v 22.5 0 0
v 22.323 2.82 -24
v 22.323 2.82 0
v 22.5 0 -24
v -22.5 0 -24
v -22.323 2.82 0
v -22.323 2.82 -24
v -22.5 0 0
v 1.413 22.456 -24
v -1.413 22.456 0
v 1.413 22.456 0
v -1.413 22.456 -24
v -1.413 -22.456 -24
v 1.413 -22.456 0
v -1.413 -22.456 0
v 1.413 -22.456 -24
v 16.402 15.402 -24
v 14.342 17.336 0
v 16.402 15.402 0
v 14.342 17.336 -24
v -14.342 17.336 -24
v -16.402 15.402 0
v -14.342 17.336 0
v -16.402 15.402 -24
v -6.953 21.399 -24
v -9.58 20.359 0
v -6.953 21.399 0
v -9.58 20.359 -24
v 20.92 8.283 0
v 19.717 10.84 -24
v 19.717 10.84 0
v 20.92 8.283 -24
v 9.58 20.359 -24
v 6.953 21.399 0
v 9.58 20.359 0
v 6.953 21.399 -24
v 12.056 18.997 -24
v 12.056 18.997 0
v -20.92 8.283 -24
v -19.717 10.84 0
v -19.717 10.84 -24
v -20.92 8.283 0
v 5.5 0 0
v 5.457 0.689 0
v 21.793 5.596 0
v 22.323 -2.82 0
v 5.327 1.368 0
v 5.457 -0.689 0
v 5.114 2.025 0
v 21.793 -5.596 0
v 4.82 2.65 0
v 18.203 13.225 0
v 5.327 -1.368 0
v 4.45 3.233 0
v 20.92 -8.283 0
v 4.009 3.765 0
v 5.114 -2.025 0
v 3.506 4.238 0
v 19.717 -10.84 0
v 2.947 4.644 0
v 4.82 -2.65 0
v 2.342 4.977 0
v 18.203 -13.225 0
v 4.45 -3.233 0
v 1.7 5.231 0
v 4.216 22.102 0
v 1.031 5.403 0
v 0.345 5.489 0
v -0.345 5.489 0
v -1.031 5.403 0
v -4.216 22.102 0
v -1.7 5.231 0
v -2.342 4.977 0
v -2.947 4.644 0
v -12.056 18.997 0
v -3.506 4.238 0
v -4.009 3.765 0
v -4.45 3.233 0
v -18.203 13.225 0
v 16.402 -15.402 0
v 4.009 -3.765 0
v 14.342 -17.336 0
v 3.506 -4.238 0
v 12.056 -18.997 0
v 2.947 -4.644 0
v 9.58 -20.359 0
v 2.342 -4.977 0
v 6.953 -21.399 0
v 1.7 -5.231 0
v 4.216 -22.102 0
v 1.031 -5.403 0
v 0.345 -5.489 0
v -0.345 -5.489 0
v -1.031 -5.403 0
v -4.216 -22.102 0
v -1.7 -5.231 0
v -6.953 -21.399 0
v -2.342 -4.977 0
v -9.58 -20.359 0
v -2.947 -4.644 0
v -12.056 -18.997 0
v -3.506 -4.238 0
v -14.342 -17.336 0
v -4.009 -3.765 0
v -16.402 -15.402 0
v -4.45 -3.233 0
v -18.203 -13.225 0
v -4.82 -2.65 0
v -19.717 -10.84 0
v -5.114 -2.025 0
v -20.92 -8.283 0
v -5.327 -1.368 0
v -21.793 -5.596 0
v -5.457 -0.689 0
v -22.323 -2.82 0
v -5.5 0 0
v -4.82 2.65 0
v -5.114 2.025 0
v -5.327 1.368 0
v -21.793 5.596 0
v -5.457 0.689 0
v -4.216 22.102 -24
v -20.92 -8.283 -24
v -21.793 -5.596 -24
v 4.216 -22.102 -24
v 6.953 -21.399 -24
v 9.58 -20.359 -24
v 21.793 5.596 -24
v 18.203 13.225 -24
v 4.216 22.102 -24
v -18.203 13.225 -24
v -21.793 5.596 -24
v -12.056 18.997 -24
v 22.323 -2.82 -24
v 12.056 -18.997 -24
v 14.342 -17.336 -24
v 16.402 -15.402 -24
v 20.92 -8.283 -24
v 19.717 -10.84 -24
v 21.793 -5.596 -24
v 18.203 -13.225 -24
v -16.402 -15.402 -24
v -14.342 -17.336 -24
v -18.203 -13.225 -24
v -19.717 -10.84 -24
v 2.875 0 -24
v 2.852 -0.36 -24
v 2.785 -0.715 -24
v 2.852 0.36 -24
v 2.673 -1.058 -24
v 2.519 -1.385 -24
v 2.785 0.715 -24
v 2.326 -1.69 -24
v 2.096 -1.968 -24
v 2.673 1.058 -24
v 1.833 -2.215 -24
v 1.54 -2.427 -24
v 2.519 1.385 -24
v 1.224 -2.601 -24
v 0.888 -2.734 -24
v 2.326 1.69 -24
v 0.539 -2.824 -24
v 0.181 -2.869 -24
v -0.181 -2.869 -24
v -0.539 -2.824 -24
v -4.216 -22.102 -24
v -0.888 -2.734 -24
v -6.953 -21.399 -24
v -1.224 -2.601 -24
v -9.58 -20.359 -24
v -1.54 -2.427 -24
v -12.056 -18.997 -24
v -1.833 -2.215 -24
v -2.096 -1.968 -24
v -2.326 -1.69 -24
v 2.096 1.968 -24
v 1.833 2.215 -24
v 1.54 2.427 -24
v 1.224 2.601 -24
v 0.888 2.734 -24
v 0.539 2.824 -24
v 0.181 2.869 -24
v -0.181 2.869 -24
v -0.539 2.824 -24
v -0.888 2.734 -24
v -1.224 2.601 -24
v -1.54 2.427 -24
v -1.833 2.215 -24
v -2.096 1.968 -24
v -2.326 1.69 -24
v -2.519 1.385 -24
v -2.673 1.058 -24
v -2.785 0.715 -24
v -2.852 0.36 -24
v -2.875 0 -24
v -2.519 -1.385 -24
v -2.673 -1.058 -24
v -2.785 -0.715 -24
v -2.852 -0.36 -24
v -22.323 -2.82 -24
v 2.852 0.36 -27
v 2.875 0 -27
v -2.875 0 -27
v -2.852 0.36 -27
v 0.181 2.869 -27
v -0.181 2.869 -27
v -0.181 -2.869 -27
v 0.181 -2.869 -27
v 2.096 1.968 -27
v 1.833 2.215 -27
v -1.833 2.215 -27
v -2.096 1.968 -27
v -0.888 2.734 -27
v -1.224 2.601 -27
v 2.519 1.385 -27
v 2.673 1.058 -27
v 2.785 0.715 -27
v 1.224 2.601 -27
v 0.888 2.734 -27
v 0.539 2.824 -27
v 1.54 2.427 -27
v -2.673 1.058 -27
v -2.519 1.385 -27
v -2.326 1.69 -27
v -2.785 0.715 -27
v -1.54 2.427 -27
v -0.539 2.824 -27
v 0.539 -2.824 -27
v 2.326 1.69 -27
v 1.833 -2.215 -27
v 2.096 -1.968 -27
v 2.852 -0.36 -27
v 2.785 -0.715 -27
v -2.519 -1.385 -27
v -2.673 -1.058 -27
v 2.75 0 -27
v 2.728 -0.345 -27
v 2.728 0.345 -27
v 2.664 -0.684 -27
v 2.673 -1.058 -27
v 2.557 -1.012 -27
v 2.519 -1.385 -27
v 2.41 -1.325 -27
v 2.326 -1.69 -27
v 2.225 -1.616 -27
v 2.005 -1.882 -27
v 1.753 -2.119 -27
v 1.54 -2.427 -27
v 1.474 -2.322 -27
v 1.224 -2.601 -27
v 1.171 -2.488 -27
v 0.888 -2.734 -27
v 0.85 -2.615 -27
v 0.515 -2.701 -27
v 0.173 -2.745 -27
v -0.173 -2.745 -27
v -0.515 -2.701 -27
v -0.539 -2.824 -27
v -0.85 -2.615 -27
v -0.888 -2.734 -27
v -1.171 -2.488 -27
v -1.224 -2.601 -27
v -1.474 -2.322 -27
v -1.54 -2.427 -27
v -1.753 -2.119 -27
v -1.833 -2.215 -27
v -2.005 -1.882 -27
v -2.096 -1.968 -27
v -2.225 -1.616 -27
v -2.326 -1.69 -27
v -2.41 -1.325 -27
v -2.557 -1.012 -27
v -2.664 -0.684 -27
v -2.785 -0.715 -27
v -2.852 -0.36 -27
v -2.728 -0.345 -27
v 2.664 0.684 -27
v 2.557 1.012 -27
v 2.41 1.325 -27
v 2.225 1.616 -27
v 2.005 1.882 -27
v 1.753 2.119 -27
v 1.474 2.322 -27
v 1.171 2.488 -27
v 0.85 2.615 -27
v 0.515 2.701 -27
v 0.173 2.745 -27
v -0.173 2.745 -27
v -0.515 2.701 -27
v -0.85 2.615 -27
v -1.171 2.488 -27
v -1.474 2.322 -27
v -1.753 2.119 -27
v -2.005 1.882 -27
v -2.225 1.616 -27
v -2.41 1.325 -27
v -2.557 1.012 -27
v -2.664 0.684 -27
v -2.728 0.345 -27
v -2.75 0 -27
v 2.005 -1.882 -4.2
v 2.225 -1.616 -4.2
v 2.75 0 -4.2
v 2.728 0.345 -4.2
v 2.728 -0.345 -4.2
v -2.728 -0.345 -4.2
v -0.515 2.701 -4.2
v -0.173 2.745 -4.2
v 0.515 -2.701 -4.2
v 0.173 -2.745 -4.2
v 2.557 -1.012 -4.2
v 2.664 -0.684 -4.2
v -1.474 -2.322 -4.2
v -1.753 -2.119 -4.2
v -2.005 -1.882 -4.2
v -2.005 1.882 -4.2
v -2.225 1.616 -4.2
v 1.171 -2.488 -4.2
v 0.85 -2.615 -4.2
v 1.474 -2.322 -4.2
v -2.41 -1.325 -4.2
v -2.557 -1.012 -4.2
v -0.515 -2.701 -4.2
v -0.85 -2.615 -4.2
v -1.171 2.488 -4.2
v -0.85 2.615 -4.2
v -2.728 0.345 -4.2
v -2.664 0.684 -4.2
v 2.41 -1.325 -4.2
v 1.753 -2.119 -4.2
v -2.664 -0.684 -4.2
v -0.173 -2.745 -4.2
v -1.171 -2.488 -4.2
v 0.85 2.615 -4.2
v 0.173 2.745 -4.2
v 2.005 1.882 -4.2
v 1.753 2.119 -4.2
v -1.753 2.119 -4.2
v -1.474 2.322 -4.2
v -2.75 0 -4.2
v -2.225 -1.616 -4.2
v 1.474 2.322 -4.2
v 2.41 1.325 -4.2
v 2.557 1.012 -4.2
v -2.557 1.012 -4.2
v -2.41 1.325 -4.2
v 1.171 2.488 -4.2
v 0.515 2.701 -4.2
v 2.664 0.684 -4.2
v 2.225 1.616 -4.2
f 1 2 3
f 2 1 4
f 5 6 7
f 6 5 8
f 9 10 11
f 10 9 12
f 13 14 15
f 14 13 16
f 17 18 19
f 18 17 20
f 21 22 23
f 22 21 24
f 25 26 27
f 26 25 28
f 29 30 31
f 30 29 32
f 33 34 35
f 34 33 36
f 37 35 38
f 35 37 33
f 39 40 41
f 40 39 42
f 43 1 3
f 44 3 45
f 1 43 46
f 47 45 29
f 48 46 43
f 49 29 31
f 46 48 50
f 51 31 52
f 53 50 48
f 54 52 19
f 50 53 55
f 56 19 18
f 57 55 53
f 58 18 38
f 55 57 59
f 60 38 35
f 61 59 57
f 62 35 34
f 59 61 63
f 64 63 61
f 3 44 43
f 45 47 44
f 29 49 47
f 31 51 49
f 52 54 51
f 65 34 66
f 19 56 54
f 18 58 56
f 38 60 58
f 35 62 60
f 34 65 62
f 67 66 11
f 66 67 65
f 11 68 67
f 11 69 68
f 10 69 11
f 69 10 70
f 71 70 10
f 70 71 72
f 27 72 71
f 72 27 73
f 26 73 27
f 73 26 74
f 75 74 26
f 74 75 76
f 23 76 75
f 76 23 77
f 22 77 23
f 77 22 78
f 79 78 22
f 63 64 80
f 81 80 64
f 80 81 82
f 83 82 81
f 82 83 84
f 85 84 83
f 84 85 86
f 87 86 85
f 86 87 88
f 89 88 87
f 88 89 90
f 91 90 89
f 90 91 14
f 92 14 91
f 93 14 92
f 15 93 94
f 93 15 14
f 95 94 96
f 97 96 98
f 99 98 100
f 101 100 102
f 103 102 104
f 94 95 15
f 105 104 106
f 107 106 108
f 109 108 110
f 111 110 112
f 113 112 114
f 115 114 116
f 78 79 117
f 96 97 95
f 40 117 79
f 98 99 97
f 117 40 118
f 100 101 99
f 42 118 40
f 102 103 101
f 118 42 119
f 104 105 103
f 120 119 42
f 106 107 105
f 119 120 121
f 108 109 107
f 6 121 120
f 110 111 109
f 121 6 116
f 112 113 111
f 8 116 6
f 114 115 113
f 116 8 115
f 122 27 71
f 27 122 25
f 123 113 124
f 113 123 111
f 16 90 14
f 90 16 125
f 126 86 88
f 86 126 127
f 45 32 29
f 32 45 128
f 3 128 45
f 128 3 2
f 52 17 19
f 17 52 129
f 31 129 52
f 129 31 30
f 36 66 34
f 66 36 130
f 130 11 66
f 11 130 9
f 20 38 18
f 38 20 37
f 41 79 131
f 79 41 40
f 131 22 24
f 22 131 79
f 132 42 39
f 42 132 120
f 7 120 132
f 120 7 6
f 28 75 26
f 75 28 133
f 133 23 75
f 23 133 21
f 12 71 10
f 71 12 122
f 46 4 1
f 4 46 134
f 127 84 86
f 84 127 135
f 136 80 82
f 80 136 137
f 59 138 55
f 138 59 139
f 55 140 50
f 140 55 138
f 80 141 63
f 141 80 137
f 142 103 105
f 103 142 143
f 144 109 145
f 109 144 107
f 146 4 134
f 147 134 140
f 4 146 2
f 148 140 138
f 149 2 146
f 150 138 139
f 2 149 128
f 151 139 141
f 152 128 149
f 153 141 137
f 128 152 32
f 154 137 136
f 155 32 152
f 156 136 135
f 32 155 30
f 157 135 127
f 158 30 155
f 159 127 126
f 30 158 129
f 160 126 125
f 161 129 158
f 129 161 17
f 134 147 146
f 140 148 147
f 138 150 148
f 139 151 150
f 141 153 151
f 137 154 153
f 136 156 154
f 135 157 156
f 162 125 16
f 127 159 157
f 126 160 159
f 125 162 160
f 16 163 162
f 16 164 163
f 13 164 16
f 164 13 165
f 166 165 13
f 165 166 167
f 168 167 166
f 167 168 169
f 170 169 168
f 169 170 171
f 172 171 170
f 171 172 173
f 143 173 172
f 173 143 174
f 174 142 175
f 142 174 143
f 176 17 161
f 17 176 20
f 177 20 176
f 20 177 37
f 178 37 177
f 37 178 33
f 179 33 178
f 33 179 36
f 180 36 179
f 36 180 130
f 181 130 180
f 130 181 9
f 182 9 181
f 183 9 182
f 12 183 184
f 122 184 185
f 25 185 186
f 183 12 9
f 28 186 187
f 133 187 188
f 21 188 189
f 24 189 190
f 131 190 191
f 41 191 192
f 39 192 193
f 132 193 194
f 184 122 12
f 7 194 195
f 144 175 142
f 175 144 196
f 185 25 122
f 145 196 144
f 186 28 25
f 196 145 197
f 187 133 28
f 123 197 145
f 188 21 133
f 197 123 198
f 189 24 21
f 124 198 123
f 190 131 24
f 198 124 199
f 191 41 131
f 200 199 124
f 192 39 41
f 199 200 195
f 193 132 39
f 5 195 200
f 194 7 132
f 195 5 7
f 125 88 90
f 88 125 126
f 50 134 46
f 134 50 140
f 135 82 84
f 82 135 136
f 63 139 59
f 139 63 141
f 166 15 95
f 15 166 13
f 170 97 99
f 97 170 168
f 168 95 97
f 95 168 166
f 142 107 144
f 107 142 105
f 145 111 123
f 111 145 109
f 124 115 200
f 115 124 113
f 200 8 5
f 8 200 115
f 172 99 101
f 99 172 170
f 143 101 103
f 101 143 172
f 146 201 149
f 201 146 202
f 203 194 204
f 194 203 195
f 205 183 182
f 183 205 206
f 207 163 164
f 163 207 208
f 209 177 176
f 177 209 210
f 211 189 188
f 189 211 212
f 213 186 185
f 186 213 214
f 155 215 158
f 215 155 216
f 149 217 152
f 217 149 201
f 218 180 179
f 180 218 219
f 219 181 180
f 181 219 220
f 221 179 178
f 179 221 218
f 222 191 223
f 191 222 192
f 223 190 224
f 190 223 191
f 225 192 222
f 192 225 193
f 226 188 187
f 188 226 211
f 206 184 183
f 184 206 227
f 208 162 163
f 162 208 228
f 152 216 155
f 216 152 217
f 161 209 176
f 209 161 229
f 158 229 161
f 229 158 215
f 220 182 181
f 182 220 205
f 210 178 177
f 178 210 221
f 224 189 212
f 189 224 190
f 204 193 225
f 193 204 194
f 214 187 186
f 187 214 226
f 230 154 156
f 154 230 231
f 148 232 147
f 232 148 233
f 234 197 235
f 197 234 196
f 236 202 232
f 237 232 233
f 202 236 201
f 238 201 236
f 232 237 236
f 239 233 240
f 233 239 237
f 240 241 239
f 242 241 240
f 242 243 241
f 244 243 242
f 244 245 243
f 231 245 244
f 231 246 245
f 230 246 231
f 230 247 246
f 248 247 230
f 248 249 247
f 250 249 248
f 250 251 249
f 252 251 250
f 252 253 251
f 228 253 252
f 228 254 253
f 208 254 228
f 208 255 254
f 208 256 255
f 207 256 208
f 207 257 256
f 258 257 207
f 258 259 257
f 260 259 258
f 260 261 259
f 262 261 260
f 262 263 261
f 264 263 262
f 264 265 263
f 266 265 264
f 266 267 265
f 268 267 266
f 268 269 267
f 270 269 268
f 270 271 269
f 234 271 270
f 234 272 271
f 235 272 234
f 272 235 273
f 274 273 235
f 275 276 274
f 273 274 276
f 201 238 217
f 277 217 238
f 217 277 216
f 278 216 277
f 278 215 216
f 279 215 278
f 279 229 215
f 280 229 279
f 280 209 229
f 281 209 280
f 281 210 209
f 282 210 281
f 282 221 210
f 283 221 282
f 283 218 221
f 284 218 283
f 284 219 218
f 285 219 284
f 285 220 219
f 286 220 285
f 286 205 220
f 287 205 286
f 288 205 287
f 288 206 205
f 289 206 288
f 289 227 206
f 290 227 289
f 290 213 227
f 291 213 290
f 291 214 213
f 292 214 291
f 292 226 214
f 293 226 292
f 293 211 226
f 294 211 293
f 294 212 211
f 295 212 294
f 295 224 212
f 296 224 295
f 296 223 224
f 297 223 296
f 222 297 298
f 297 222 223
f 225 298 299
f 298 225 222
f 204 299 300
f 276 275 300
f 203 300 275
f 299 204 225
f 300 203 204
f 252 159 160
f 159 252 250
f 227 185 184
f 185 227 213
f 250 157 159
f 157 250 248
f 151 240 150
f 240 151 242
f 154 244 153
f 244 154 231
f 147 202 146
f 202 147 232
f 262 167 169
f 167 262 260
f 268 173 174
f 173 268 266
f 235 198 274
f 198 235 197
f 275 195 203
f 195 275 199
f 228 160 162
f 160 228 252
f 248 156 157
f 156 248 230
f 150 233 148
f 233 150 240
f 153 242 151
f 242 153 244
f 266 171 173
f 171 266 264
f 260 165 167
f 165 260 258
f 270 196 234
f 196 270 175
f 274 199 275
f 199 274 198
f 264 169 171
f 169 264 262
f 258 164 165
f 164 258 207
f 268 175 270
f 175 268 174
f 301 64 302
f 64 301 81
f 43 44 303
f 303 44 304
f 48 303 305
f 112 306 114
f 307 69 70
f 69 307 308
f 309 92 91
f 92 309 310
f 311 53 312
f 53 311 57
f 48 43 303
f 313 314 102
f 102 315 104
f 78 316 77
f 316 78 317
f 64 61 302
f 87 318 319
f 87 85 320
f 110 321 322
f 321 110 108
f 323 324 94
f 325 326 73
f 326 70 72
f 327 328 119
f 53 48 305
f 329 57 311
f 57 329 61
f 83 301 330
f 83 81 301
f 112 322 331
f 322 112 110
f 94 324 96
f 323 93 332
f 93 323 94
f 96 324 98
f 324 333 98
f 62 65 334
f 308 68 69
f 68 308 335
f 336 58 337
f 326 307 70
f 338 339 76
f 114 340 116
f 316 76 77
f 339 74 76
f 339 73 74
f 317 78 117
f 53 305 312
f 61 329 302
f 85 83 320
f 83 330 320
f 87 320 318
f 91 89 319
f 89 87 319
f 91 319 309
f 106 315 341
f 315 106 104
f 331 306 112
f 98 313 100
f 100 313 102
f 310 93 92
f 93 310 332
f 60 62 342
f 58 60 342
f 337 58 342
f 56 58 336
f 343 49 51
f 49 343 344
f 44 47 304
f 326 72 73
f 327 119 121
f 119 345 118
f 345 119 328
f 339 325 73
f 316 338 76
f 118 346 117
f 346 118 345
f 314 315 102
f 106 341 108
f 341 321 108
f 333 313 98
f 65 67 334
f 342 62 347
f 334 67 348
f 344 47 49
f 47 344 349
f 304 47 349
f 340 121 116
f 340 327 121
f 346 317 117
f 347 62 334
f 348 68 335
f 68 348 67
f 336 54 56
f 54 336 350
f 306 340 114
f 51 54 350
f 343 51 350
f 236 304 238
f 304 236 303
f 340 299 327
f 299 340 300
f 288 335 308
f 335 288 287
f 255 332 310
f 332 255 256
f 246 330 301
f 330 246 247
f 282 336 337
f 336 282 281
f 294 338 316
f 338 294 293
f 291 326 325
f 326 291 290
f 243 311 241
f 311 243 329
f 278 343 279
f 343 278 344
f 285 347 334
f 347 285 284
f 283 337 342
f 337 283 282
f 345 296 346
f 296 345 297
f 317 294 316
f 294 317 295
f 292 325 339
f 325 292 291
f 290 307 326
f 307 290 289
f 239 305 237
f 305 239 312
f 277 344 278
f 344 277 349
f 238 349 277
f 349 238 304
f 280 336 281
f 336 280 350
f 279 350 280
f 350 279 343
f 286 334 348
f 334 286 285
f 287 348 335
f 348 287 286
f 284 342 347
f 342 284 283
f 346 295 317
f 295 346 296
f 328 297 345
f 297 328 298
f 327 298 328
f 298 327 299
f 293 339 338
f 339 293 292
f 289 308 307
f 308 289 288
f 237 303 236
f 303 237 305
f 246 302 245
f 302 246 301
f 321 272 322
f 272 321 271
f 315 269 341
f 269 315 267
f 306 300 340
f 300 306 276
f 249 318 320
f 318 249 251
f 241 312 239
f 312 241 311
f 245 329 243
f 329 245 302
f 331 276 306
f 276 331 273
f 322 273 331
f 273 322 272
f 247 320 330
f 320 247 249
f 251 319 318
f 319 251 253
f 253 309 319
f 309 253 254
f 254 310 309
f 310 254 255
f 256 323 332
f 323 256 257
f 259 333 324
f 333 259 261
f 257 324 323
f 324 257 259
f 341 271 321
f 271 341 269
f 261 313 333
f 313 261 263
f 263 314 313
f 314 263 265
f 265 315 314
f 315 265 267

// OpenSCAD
$fn = 50;

difference() {
	union() {
		translate(v = [0, 0, -24.0]) {
			cylinder(h = 24, r = 22.5);
		}
		#translate(v = [0, 0, -27.0]) {
			cylinder(h = 27, r = 2.875);
		}
	}
	union() {
		translate(v = [0, 0, 0]) {
			rotate(a = [0, 0, 0]) {
				difference() {
					union() {
						translate(v = [0, 0, -27.0]) {
							cylinder(h = 27, r = 2.25);
						}
						translate(v = [0, 0, -4.2]) {
							cylinder(h = 4.2, r1 = 2.75, r2 = 5.5);
						}
						translate(v = [0, 0, -27.0]) {
							cylinder(h = 27, r = 2.75);
						}
						translate(v = [0, 0, -27.0]) {
							cylinder(h = 27, r = 2.25);
						}
					}
					union();
				}
			}
		}
	}
}
